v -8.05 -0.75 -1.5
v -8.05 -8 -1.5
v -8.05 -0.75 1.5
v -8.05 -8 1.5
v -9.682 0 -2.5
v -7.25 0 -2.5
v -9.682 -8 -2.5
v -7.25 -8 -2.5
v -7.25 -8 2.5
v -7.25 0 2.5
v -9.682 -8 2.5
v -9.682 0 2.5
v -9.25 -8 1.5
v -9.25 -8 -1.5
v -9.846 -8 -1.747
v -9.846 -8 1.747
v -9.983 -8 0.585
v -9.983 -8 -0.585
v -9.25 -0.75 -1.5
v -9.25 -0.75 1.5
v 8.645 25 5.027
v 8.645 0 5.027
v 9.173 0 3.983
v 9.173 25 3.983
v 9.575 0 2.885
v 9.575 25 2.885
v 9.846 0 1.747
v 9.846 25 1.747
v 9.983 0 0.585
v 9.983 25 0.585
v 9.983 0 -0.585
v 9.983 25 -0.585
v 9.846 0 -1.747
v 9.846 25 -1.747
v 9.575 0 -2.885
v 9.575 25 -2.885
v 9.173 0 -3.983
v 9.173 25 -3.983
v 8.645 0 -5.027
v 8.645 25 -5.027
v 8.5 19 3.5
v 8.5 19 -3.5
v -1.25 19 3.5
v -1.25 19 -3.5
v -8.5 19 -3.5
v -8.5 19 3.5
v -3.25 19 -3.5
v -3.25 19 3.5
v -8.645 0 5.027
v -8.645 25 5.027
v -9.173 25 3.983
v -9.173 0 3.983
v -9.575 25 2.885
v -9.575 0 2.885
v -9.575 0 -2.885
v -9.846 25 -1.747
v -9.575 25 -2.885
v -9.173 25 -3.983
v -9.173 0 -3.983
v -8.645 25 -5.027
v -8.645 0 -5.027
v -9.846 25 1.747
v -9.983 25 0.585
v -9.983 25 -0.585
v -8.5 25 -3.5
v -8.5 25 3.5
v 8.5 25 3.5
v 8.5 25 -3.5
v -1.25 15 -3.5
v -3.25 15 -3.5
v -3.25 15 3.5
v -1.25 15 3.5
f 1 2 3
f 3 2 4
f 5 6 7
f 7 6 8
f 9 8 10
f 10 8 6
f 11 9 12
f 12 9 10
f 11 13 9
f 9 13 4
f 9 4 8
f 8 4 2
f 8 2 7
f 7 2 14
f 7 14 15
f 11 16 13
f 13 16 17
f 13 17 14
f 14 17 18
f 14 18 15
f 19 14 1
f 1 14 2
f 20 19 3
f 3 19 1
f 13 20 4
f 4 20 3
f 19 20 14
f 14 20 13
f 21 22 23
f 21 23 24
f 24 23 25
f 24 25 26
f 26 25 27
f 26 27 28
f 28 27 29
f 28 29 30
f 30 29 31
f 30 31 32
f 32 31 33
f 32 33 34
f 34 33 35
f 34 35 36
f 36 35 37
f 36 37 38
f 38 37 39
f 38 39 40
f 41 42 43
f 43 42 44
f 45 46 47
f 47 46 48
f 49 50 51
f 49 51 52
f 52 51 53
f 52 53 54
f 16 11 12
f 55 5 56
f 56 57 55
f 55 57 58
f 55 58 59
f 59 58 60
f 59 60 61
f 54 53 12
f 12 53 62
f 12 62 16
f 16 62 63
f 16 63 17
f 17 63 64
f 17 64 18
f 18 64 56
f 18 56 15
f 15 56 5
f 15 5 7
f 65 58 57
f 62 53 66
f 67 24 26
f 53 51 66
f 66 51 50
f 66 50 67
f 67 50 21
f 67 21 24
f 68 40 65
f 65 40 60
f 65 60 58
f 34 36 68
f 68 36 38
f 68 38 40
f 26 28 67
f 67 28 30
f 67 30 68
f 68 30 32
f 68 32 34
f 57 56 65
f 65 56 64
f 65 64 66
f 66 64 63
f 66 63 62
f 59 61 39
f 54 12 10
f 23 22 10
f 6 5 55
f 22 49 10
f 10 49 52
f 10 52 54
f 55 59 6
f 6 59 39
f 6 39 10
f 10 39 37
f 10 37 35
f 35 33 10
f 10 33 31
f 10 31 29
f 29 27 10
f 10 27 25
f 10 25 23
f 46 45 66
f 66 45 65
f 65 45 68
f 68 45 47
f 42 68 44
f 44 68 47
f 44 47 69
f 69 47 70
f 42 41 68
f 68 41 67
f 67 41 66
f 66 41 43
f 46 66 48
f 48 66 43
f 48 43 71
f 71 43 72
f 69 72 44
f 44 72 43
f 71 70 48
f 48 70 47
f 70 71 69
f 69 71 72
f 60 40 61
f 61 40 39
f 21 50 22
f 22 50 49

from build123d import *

# Parameters (mm, degrees)
SKETCH1_R           = 10
BOSS_EXTRUDE1_DEPTH = 25
SKETCH2_W           = 0.8
SKETCH2_H           = 5
BOSS_EXTRUDE2_DEPTH = 8
BOSS_EXTRUDE3_DEPTH = 1.2
SKETCH4_W           = 17
SKETCH4_H           = 7
CUT_EXTRUDE1_DEPTH  = 6
SKETCH5_W           = 2
SKETCH5_H           = 7
CUT_EXTRUDE2_DEPTH  = 4
CUT_EXTRUDE3_DEPTH  = 25
SKETCH7_W           = 5
SKETCH7_H           = 8
BOSS_EXTRUDE4_DEPTH = 0.8
CUT_EXTRUDE4_REACH  = 29.409


with BuildPart() as part:
    # Sketch1 → Boss-Extrude1 (new body)
    with BuildSketch(Plane(origin=(0, 0, 0), x_dir=(1, 0, 0), z_dir=(0, 1, 0))):
        with Locations(Location((0, 0, 0), (0, 0, 270))):
            Circle(SKETCH1_R)
    extrude(amount=BOSS_EXTRUDE1_DEPTH)

    # Sketch4 → Cut-Extrude1 (cut)
    with BuildSketch(Plane(origin=(0, 25, 0), x_dir=(1, 0, 0), z_dir=(0, 1, 0))):
        Rectangle(SKETCH4_W, SKETCH4_H)
    extrude(amount=-CUT_EXTRUDE1_DEPTH, mode=Mode.SUBTRACT)

    # Sketch5 → Cut-Extrude2 (cut)
    with BuildSketch(Plane(origin=(0, 19, 0), x_dir=(1, 0, 0), z_dir=(0, 1, 0))):
        with Locations((-2.25, 0)):
            Rectangle(SKETCH5_W, SKETCH5_H)
    extrude(amount=-CUT_EXTRUDE2_DEPTH, mode=Mode.SUBTRACT)

    # Sketch6 → Cut-Extrude3 (cut)
    with BuildSketch(Plane.XZ):
        with BuildLine():
            Line((-8.644632716, 5.026959838), (8.644632716, 5.026959838))
            ThreePointArc((8.644632716, 5.026959838), (0, 10), (-8.644632716, 5.026959838))
        make_face()
        with BuildLine():
            Line((-8.644632716, -5.026959838), (8.644632716, -5.026959838))
            ThreePointArc((8.644632716, -5.026959838), (0, -10), (-8.644632716, -5.026959838))
        make_face()
    extrude(amount=-CUT_EXTRUDE3_DEPTH, mode=Mode.SUBTRACT)



with BuildPart() as body_2:
    # Sketch2 → Boss-Extrude2 (new body)
    with BuildSketch(Plane(origin=(0, 0, 0), x_dir=(-1, 0, 0), z_dir=(0, -1, 0))):
        with Locations((7.65, 0)):
            Rectangle(SKETCH2_W, SKETCH2_H)
    extrude(amount=BOSS_EXTRUDE2_DEPTH)

    # Sketch3 → Boss-Extrude3 (add)
    with BuildSketch(Plane.ZY.offset(8.05)):
        Polygon((-2.5, -8), (-2.5, 0), (2.5, 0), (2.5, -8), (1.5, -8), (1.5, -0.75), (-1.5, -0.75), (-1.5, -8), align=None)
    extrude(amount=BOSS_EXTRUDE3_DEPTH)


with BuildPart() as part_1:
    add(part.part)

    add(body_2.part)  # Boss-Extrude4 merges body 2
    # Sketch7 → Boss-Extrude4 (add)
    with BuildSketch(Plane.ZY.offset(9.25)):
        with Locations((0, -4)):
            Rectangle(SKETCH7_W, SKETCH7_H)
    extrude(amount=BOSS_EXTRUDE4_DEPTH)

    # Sketch8 → Cut-Extrude4 (cut, up to next)
    with BuildSketch(Plane(origin=(0, 0, 0), x_dir=(1, 0, 0), z_dir=(0, 1, 0)), mode=Mode.PRIVATE) as cut_extrude4_sk1:
        with BuildLine():
            Line((-9.682458366, 2.5), (-10.05, 2.5))
            Line((-10.05, 2.5), (-10.05, -2.5))
            Line((-10.05, -2.5), (-9.682458366, -2.5))
            ThreePointArc((-9.682458366, -2.5), (-10, 0), (-9.682458366, 2.5))
        make_face()
    cut_extrude4_tool1 = extrude(cut_extrude4_sk1.sketch, amount=-CUT_EXTRUDE4_REACH, mode=Mode.PRIVATE) & part_1.part
    add(cut_extrude4_tool1.solids().sort_by_distance((-9.866229, 0, -2.449865))[0], mode=Mode.SUBTRACT)


solid = part_1.part
